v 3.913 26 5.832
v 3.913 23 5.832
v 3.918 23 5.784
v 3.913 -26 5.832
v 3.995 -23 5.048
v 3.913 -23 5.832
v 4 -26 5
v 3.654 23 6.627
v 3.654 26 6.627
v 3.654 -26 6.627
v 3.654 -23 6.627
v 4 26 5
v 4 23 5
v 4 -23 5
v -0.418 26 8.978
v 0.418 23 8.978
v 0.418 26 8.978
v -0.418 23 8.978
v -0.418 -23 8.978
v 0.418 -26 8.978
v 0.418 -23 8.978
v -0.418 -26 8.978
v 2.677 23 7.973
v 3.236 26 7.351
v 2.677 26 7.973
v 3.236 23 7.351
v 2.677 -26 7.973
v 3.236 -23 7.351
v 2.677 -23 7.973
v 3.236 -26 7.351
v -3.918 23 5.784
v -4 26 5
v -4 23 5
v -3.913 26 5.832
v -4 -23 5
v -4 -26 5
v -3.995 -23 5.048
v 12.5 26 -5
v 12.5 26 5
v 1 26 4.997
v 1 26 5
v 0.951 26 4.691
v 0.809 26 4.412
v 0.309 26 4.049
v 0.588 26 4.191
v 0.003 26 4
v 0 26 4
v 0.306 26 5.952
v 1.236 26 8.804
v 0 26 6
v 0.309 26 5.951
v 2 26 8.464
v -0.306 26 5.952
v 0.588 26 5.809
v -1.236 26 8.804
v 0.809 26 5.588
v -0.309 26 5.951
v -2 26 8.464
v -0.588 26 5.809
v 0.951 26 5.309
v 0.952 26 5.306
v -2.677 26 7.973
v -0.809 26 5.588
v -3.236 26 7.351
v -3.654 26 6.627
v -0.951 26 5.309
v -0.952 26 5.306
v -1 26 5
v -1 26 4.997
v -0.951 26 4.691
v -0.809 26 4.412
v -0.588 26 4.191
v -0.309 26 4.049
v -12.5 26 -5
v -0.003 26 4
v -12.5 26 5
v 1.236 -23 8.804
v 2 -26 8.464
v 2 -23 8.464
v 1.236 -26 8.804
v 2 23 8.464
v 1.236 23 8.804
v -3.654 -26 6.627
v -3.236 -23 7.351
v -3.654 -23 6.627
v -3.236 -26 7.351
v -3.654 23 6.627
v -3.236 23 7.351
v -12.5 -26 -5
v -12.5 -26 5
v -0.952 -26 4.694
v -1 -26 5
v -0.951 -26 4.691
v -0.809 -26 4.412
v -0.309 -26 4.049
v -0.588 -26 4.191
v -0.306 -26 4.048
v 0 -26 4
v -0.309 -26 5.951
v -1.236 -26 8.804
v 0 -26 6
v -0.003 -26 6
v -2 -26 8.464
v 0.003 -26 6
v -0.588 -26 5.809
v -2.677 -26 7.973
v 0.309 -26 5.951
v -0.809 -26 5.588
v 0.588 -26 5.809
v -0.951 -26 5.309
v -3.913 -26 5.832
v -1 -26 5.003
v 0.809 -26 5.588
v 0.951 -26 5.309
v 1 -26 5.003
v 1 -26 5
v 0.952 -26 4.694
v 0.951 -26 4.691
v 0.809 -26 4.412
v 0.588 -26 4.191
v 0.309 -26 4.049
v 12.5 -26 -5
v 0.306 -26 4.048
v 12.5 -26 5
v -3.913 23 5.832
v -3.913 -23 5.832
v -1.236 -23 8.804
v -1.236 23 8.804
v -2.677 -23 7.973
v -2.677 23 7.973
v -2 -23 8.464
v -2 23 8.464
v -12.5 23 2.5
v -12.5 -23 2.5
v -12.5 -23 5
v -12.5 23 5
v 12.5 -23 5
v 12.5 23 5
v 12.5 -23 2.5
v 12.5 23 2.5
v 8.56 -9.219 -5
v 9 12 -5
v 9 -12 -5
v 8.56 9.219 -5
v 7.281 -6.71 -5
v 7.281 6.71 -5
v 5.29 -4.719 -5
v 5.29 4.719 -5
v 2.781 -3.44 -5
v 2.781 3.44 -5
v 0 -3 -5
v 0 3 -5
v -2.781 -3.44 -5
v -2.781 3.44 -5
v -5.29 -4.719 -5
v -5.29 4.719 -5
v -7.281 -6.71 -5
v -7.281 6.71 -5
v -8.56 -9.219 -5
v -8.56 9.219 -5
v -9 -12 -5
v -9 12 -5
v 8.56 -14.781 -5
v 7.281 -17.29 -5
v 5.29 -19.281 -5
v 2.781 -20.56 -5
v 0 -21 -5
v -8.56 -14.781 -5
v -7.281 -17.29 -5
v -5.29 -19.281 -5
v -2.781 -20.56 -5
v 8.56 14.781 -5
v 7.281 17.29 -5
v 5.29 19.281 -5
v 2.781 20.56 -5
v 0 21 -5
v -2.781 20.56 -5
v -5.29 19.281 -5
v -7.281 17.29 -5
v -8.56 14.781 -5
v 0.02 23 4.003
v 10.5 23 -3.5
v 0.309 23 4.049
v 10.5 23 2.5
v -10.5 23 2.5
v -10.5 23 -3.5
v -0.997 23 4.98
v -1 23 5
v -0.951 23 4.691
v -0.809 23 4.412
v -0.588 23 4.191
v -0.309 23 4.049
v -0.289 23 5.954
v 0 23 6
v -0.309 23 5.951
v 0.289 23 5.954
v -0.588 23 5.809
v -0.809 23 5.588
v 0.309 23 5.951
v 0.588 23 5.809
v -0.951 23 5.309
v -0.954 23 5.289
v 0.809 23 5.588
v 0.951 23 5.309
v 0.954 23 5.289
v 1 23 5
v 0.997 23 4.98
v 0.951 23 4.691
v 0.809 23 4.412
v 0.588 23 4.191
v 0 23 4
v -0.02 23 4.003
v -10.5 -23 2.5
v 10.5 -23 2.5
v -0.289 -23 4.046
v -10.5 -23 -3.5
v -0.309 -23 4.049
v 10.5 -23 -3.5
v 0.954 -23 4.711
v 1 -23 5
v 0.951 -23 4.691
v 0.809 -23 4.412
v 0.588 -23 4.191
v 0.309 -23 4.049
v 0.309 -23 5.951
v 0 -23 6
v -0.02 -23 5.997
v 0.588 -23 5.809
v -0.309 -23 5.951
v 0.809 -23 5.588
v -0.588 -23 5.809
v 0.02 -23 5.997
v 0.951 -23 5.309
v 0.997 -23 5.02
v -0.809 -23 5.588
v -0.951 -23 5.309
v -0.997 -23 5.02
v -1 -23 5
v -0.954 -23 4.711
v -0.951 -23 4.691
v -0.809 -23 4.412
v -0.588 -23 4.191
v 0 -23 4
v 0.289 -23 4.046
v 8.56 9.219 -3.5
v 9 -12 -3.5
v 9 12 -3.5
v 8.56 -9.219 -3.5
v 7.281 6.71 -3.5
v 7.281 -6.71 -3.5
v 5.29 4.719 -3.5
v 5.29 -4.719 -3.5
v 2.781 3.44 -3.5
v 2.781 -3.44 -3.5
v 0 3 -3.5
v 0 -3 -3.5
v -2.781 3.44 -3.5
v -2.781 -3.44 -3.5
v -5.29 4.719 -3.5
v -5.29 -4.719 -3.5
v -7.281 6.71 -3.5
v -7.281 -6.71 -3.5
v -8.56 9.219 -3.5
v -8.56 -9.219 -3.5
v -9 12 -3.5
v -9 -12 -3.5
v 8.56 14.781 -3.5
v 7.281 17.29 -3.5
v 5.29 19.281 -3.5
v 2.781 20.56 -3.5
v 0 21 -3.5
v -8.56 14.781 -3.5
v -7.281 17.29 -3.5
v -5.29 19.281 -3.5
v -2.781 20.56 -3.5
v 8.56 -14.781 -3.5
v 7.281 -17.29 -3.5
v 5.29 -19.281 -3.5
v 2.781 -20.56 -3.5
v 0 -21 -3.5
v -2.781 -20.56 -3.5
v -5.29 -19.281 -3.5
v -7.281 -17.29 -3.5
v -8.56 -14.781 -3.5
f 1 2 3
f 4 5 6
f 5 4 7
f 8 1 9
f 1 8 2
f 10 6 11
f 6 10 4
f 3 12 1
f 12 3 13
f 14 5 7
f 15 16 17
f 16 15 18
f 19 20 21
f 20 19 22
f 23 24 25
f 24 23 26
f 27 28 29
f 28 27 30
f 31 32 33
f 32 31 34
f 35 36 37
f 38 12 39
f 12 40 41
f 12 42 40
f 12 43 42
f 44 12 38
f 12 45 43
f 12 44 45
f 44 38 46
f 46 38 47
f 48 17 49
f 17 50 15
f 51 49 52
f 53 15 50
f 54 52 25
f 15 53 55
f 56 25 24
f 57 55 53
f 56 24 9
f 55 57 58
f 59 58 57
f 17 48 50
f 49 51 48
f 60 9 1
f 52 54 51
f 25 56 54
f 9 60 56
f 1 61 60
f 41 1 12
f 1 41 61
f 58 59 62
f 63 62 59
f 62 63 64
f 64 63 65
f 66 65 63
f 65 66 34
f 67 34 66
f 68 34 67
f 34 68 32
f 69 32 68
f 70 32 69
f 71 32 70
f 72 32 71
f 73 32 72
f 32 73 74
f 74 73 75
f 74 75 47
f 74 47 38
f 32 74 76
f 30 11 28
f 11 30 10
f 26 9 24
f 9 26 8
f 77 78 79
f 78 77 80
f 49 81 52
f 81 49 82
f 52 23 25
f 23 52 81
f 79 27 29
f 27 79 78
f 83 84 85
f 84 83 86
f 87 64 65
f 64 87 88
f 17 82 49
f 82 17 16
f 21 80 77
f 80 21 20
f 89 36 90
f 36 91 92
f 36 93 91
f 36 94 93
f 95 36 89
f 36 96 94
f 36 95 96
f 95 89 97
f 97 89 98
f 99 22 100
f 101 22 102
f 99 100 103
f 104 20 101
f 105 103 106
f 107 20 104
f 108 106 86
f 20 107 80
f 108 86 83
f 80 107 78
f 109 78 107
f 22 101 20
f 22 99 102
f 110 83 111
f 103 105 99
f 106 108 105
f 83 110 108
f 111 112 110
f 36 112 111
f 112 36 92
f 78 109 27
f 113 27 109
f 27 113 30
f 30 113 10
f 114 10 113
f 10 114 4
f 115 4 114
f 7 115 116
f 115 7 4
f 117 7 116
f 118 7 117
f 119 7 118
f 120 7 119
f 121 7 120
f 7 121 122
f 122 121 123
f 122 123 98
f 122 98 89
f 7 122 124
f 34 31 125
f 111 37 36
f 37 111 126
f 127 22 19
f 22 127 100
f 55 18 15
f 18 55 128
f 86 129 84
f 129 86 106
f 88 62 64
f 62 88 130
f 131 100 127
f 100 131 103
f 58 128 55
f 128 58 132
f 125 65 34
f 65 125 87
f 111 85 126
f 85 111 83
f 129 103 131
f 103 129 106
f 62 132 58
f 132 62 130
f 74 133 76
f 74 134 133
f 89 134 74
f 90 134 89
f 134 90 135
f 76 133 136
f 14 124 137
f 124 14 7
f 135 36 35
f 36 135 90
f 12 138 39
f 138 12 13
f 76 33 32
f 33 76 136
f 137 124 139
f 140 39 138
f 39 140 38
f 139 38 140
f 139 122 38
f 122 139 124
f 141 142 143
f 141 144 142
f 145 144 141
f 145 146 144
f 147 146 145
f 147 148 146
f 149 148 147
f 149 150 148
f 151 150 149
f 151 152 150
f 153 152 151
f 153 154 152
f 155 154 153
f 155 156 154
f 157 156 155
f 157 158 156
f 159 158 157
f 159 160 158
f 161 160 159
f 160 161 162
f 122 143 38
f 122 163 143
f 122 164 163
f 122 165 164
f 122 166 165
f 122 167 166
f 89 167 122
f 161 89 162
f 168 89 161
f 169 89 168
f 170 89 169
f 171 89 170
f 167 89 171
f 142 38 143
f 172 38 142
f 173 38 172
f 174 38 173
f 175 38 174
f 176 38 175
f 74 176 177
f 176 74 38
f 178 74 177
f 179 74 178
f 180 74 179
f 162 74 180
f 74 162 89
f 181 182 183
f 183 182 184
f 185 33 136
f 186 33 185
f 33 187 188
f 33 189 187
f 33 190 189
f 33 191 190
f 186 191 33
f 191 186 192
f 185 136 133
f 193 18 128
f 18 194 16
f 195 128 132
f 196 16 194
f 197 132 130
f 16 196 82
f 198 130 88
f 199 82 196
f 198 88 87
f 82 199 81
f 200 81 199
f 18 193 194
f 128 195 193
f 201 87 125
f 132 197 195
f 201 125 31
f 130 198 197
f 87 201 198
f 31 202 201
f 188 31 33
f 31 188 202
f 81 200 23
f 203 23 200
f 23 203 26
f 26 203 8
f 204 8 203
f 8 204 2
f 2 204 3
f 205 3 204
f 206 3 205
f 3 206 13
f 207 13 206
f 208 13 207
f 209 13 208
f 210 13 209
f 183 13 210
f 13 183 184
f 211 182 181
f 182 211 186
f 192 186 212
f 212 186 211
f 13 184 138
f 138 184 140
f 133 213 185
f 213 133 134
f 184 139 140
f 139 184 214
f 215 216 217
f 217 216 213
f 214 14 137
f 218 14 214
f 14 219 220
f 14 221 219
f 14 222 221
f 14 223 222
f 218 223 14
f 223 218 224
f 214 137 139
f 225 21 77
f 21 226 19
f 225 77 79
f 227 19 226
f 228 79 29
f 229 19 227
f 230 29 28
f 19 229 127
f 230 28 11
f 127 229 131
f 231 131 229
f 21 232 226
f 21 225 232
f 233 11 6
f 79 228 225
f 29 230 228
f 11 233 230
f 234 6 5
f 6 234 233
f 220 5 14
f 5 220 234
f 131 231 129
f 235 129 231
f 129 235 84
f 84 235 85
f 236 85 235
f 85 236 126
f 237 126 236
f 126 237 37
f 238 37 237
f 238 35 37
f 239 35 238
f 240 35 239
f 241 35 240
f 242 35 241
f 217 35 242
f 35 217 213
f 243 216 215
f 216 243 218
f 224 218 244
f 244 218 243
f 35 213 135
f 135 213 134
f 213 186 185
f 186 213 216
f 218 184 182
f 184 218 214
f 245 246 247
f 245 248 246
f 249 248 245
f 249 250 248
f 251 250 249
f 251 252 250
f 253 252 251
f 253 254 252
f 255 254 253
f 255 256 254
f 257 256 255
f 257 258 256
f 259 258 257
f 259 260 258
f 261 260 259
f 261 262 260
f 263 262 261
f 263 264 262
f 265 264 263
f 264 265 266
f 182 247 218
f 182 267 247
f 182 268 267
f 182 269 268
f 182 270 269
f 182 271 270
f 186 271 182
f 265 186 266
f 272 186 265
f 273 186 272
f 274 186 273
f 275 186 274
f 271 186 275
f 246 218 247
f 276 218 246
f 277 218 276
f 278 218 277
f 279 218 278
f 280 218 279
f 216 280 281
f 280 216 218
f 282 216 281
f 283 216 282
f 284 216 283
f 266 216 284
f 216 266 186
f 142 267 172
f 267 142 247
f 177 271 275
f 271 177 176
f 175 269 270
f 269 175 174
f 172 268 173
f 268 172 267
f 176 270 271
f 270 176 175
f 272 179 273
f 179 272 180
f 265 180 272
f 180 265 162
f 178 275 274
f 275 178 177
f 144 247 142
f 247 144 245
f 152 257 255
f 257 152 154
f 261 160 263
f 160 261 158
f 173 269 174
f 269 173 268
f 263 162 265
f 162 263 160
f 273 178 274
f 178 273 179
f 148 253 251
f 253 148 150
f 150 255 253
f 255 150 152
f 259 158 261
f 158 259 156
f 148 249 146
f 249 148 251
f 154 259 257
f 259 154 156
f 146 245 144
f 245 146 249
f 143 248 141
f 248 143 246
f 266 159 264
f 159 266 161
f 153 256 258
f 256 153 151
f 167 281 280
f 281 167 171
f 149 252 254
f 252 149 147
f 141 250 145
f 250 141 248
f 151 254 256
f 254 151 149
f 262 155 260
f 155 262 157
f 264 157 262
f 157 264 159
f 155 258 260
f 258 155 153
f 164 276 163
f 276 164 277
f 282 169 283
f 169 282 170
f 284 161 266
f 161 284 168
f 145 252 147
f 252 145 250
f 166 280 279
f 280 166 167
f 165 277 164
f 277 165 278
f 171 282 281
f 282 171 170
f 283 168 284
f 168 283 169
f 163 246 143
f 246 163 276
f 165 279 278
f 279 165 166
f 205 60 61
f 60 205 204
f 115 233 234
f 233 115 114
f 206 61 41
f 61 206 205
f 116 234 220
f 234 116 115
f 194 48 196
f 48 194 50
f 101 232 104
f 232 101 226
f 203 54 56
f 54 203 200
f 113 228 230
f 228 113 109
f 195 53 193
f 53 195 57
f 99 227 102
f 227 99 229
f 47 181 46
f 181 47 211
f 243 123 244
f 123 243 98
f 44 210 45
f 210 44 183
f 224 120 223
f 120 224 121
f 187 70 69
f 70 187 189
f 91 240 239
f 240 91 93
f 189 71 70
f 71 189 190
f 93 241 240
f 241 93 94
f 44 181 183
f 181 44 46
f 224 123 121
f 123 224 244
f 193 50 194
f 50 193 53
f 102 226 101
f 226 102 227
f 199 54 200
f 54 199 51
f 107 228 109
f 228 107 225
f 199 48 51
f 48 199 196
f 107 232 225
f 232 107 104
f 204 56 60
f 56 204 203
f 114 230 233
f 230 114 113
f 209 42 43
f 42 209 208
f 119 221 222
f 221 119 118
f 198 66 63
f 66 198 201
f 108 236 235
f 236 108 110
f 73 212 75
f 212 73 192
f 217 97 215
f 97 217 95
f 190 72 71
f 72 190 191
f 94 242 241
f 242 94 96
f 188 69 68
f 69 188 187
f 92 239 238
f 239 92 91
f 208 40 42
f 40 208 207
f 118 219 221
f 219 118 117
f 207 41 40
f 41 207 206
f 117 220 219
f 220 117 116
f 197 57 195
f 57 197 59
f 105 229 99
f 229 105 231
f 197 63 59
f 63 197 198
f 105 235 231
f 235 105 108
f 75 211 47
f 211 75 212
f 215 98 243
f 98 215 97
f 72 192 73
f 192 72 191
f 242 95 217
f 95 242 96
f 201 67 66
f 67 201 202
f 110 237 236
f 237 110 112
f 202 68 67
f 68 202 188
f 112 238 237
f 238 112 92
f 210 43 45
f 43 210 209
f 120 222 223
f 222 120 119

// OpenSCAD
largura = 25;
comprimento = 52; 
altura = 10; 
paredeGrossa = 3; 
paredeFina = 2; 


module suporteParafuso () {
 translate([0,0,  + altura/2])
 rotate([90,0,0])
    cylinder($fn=30, comprimento,4,4,true); 
}

module base() {
 suporteParafuso();
 cube([largura,comprimento,altura],true);
    
}

module furos() {
    
 // profundidade superior 
 translate([0,0, (altura-paredeFina)/2])
 cube([largura+1,comprimento-2*paredeGrossa,3],true);
 
 translate([0,0, altura])   
     cube([largura-paredeFina,comprimento-2*paredeGrossa,10],true); 

 

// profundidade principal 
 
 cube([largura-2*paredeFina,comprimento-2*paredeGrossa,7],true);// 7 é a profundidade interna do sensor  


// profundidade inferior
raioB = 9;   
distanciaCentroFuro = 12; 
translate([0,distanciaCentroFuro,0])
 cylinder($fn=20, comprimento+1,raioB,raioB,true);

translate([0,-distanciaCentroFuro,0])
 cylinder($fn=20, comprimento+1,raioB,raioB,true);

 translate([0,0,  altura/2])
 rotate([90,0,0])
 cylinder($fn=20, comprimento+1,1,1,true);

}



difference(){
base(); 
furos();

}

 
 
 
 
